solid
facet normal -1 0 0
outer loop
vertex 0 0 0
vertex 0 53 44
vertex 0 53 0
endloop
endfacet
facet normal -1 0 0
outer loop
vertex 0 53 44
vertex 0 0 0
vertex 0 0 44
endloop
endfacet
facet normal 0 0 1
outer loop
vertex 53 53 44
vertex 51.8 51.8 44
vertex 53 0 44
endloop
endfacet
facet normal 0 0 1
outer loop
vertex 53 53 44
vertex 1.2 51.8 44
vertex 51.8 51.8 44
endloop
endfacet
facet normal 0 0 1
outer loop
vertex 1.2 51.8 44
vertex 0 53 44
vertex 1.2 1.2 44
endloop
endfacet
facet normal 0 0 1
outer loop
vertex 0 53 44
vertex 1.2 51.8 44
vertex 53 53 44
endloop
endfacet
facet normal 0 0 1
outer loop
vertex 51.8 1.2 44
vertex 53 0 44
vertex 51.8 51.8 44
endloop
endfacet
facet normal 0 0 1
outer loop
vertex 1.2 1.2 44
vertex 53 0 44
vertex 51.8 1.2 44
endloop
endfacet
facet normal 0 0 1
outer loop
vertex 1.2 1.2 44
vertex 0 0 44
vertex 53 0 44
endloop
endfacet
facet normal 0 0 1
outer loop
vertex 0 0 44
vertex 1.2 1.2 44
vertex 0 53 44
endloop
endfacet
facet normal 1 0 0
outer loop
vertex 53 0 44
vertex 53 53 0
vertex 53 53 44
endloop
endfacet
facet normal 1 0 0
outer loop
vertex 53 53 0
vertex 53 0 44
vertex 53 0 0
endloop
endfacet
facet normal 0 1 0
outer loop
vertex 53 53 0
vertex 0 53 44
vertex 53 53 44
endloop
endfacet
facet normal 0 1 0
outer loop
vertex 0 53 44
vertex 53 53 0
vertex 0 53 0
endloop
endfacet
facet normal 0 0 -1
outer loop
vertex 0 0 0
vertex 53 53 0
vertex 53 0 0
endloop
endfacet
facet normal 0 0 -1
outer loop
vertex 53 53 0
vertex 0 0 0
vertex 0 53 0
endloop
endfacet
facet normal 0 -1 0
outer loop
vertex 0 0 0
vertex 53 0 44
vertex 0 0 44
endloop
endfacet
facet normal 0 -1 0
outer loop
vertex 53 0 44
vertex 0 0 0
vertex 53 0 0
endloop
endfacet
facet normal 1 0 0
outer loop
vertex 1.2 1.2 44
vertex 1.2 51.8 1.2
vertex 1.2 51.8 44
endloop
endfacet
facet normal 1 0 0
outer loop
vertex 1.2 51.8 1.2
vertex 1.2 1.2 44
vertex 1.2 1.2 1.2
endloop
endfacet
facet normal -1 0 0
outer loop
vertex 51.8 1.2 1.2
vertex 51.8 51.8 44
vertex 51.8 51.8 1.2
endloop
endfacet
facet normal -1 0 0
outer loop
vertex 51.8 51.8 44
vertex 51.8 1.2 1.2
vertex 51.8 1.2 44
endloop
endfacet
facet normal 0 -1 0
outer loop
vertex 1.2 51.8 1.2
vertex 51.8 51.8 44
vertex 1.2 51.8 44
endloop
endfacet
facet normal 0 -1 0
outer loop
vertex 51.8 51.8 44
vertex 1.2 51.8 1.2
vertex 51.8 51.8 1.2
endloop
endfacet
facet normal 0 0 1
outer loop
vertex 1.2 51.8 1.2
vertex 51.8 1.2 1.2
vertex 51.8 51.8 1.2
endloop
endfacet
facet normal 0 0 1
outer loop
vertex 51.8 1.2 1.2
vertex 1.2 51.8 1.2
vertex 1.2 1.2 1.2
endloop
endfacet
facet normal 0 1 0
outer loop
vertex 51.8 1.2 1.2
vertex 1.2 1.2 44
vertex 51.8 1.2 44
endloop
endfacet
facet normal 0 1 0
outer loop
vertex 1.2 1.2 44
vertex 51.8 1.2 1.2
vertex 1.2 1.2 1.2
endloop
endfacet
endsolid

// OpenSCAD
$fn=50;
difference() {
	cube([53,53,44]);
	translate([1.2,1.2,1.2])cube([50.6,50.6,42.8]);
}	
